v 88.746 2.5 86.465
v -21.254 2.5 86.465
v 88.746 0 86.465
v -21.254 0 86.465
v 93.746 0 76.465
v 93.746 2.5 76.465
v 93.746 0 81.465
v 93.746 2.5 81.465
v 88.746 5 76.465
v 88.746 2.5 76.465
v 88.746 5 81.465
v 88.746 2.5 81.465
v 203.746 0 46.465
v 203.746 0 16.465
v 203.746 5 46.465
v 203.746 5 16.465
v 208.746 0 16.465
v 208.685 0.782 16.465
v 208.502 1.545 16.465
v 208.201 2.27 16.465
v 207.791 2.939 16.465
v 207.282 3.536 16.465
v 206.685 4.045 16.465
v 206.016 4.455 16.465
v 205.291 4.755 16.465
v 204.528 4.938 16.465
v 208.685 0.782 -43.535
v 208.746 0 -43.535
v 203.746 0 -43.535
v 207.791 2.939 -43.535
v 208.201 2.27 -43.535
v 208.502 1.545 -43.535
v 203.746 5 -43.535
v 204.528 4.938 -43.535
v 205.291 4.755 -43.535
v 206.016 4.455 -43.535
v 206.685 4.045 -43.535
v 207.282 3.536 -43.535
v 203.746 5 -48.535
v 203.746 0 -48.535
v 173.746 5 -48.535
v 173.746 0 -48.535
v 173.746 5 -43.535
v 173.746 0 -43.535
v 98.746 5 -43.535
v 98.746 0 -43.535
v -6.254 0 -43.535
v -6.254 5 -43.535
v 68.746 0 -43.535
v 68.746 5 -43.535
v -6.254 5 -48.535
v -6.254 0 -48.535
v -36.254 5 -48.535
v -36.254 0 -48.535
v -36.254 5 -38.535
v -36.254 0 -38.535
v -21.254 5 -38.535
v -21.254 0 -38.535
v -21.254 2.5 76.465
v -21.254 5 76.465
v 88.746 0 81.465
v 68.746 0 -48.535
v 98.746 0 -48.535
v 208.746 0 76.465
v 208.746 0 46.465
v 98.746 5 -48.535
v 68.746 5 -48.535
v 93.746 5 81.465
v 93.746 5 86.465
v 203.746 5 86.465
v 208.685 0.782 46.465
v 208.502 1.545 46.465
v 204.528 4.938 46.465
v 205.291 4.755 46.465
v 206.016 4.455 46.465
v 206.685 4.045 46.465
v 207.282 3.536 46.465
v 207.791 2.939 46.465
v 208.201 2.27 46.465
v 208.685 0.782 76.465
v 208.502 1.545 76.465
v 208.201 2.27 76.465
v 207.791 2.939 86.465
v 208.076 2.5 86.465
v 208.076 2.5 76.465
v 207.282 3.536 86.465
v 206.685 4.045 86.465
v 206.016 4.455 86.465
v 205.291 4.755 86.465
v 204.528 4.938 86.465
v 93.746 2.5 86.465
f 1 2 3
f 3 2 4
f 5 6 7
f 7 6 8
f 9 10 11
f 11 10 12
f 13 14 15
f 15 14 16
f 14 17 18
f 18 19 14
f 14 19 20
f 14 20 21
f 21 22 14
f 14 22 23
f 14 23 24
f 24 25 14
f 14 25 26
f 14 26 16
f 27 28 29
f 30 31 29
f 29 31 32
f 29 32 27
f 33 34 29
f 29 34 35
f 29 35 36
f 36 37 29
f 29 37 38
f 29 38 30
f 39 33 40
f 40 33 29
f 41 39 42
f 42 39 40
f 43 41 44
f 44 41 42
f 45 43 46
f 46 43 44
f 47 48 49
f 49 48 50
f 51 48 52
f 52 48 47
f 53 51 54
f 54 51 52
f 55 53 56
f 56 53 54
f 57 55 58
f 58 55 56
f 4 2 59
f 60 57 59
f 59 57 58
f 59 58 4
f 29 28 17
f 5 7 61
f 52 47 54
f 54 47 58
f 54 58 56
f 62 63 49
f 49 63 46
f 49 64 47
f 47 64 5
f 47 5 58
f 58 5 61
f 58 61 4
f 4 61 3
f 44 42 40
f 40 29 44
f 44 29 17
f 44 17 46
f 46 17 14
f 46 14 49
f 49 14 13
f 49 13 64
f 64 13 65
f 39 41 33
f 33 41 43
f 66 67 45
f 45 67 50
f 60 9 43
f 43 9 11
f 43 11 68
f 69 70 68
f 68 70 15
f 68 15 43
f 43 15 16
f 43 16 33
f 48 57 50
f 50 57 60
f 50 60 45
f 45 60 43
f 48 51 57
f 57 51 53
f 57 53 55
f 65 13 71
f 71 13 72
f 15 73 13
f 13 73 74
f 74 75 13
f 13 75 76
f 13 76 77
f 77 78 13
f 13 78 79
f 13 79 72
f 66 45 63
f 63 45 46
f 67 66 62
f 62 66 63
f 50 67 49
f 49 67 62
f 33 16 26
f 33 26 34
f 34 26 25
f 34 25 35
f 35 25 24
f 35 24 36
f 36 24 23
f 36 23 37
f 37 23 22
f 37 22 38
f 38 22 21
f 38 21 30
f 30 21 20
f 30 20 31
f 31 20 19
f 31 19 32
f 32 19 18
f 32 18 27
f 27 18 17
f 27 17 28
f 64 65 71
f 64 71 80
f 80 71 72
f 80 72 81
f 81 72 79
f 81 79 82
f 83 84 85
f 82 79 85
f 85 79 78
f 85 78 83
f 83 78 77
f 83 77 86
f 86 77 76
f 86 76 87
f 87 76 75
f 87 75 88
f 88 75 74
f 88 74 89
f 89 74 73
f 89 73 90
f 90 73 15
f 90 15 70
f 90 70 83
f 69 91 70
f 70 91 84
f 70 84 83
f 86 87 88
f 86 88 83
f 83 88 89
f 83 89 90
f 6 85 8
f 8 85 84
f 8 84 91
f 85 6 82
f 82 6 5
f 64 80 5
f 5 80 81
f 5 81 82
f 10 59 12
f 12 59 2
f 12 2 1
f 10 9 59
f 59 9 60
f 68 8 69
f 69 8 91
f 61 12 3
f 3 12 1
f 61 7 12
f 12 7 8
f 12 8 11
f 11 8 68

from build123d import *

# Parameters (mm, degrees)
SKETCH_1_W          = 5
SKETCH_1_H          = 60
SKETCH_1_W_2        = 30
SKETCH_1_H_2        = 5
SKETCH_1_W_3        = 15
EXTRUDE_1_DEPTH     = 5
FILLET_1_R          = 5
SKETCH_2_W          = 239.490005879
SKETCH_2_H          = 213.108485662
CUT_EXTRUDE_2_DEPTH = 10
SKETCH_3_W          = 110
SKETCH_3_H          = 2.5
SKETCH_3_W_2        = 115
CUT_EXTRUDE_3_DEPTH = 10
SKETCH_4_W          = 5
SKETCH_4_H          = 5
CUT_EXTRUDE_4_DEPTH = 5


with BuildPart() as part:
    # 草圖1 → 填料-伸長1 (new body)
    with BuildSketch(Plane(origin=(0, 0, 0), x_dir=(1, 0, 0), z_dir=(0, 1, 0))):
        Polygon((198.746286718, -286.464902661), (198.746286718, -256.464902661), (183.246286718, -256.464902661), (183.246286718, -266.464902661), (124.746286718, -266.464902661), (124.746286718, -262.464902661), (109.246286718, -262.464902661), (109.246286718, -266.464902661), (-21.253713282, -266.464902661), (-21.253713282, 38.535097339), (-36.253713282, 38.535097339), (-36.253713282, 43.535097339), (203.746286718, 43.535097339), (203.746286718, -286.464902661), align=None)
        with Locations((206.246286718, -256.464902661)):
            Rectangle(SKETCH_1_W, SKETCH_1_H)
        with Locations((206.246286718, 13.535097339)):
            Rectangle(SKETCH_1_W, SKETCH_1_H)
        with Locations((188.746286718, 46.035097339)):
            Rectangle(SKETCH_1_W_2, SKETCH_1_H_2)
        with Locations((-21.253713282, 46.035097339)):
            Rectangle(SKETCH_1_W_2, SKETCH_1_H_2)
        with Locations((91.246286718, 46.035097339)):
            Rectangle(SKETCH_1_W_3, SKETCH_1_H_2)
        with Locations((76.246286718, 46.035097339)):
            Rectangle(SKETCH_1_W_3, SKETCH_1_H_2)
        with Locations((206.246286718, -166.464902661)):
            Rectangle(SKETCH_1_W, SKETCH_1_H)
        with Locations((206.246286718, -76.464902661)):
            Rectangle(SKETCH_1_W, SKETCH_1_H)
    extrude(amount=EXTRUDE_1_DEPTH)

    # 圓角1
    fillet_1_edges = [part.edges().sort_by_distance(p)[0] for p in [
        (208.746286718, 5, -13.535097339),
        (208.746286718, 5, 76.464902661),
        (208.746286718, 5, 166.464902661),
        (208.746286718, 5, 256.464902661),
    ]]
    fillet(fillet_1_edges, radius=FILLET_1_R - 0.0001)  # a hair under: the kernel refuses the full size

    # 草圖2 → 除料-伸長2 (cut)
    with BuildSketch(Plane(origin=(0, 5, 0), x_dir=(1, 0, 0), z_dir=(0, 1, 0))):
        with Locations((89.001283779, -193.019145492)):
            Rectangle(SKETCH_2_W, SKETCH_2_H)
    extrude(amount=-CUT_EXTRUDE_2_DEPTH, mode=Mode.SUBTRACT)

    # 草圖3 → 除料-伸長3 (cut)
    with BuildSketch(Plane.XY.offset(86.464902661)):
        with Locations((33.746286718, 3.75)):
            Rectangle(SKETCH_3_W, SKETCH_3_H)
        with Locations((151.246286718, 1.25)):
            Rectangle(SKETCH_3_W_2, SKETCH_3_H)
    extrude(amount=-CUT_EXTRUDE_3_DEPTH, mode=Mode.SUBTRACT)

    # 草圖4 → 除料-伸長4 (cut)
    with BuildSketch(Plane.XY.offset(86.464902661)):
        with Locations((91.246286718, 2.5)):
            Rectangle(SKETCH_4_W, SKETCH_4_H)
    extrude(amount=-CUT_EXTRUDE_4_DEPTH, mode=Mode.SUBTRACT)


solid = part.part
